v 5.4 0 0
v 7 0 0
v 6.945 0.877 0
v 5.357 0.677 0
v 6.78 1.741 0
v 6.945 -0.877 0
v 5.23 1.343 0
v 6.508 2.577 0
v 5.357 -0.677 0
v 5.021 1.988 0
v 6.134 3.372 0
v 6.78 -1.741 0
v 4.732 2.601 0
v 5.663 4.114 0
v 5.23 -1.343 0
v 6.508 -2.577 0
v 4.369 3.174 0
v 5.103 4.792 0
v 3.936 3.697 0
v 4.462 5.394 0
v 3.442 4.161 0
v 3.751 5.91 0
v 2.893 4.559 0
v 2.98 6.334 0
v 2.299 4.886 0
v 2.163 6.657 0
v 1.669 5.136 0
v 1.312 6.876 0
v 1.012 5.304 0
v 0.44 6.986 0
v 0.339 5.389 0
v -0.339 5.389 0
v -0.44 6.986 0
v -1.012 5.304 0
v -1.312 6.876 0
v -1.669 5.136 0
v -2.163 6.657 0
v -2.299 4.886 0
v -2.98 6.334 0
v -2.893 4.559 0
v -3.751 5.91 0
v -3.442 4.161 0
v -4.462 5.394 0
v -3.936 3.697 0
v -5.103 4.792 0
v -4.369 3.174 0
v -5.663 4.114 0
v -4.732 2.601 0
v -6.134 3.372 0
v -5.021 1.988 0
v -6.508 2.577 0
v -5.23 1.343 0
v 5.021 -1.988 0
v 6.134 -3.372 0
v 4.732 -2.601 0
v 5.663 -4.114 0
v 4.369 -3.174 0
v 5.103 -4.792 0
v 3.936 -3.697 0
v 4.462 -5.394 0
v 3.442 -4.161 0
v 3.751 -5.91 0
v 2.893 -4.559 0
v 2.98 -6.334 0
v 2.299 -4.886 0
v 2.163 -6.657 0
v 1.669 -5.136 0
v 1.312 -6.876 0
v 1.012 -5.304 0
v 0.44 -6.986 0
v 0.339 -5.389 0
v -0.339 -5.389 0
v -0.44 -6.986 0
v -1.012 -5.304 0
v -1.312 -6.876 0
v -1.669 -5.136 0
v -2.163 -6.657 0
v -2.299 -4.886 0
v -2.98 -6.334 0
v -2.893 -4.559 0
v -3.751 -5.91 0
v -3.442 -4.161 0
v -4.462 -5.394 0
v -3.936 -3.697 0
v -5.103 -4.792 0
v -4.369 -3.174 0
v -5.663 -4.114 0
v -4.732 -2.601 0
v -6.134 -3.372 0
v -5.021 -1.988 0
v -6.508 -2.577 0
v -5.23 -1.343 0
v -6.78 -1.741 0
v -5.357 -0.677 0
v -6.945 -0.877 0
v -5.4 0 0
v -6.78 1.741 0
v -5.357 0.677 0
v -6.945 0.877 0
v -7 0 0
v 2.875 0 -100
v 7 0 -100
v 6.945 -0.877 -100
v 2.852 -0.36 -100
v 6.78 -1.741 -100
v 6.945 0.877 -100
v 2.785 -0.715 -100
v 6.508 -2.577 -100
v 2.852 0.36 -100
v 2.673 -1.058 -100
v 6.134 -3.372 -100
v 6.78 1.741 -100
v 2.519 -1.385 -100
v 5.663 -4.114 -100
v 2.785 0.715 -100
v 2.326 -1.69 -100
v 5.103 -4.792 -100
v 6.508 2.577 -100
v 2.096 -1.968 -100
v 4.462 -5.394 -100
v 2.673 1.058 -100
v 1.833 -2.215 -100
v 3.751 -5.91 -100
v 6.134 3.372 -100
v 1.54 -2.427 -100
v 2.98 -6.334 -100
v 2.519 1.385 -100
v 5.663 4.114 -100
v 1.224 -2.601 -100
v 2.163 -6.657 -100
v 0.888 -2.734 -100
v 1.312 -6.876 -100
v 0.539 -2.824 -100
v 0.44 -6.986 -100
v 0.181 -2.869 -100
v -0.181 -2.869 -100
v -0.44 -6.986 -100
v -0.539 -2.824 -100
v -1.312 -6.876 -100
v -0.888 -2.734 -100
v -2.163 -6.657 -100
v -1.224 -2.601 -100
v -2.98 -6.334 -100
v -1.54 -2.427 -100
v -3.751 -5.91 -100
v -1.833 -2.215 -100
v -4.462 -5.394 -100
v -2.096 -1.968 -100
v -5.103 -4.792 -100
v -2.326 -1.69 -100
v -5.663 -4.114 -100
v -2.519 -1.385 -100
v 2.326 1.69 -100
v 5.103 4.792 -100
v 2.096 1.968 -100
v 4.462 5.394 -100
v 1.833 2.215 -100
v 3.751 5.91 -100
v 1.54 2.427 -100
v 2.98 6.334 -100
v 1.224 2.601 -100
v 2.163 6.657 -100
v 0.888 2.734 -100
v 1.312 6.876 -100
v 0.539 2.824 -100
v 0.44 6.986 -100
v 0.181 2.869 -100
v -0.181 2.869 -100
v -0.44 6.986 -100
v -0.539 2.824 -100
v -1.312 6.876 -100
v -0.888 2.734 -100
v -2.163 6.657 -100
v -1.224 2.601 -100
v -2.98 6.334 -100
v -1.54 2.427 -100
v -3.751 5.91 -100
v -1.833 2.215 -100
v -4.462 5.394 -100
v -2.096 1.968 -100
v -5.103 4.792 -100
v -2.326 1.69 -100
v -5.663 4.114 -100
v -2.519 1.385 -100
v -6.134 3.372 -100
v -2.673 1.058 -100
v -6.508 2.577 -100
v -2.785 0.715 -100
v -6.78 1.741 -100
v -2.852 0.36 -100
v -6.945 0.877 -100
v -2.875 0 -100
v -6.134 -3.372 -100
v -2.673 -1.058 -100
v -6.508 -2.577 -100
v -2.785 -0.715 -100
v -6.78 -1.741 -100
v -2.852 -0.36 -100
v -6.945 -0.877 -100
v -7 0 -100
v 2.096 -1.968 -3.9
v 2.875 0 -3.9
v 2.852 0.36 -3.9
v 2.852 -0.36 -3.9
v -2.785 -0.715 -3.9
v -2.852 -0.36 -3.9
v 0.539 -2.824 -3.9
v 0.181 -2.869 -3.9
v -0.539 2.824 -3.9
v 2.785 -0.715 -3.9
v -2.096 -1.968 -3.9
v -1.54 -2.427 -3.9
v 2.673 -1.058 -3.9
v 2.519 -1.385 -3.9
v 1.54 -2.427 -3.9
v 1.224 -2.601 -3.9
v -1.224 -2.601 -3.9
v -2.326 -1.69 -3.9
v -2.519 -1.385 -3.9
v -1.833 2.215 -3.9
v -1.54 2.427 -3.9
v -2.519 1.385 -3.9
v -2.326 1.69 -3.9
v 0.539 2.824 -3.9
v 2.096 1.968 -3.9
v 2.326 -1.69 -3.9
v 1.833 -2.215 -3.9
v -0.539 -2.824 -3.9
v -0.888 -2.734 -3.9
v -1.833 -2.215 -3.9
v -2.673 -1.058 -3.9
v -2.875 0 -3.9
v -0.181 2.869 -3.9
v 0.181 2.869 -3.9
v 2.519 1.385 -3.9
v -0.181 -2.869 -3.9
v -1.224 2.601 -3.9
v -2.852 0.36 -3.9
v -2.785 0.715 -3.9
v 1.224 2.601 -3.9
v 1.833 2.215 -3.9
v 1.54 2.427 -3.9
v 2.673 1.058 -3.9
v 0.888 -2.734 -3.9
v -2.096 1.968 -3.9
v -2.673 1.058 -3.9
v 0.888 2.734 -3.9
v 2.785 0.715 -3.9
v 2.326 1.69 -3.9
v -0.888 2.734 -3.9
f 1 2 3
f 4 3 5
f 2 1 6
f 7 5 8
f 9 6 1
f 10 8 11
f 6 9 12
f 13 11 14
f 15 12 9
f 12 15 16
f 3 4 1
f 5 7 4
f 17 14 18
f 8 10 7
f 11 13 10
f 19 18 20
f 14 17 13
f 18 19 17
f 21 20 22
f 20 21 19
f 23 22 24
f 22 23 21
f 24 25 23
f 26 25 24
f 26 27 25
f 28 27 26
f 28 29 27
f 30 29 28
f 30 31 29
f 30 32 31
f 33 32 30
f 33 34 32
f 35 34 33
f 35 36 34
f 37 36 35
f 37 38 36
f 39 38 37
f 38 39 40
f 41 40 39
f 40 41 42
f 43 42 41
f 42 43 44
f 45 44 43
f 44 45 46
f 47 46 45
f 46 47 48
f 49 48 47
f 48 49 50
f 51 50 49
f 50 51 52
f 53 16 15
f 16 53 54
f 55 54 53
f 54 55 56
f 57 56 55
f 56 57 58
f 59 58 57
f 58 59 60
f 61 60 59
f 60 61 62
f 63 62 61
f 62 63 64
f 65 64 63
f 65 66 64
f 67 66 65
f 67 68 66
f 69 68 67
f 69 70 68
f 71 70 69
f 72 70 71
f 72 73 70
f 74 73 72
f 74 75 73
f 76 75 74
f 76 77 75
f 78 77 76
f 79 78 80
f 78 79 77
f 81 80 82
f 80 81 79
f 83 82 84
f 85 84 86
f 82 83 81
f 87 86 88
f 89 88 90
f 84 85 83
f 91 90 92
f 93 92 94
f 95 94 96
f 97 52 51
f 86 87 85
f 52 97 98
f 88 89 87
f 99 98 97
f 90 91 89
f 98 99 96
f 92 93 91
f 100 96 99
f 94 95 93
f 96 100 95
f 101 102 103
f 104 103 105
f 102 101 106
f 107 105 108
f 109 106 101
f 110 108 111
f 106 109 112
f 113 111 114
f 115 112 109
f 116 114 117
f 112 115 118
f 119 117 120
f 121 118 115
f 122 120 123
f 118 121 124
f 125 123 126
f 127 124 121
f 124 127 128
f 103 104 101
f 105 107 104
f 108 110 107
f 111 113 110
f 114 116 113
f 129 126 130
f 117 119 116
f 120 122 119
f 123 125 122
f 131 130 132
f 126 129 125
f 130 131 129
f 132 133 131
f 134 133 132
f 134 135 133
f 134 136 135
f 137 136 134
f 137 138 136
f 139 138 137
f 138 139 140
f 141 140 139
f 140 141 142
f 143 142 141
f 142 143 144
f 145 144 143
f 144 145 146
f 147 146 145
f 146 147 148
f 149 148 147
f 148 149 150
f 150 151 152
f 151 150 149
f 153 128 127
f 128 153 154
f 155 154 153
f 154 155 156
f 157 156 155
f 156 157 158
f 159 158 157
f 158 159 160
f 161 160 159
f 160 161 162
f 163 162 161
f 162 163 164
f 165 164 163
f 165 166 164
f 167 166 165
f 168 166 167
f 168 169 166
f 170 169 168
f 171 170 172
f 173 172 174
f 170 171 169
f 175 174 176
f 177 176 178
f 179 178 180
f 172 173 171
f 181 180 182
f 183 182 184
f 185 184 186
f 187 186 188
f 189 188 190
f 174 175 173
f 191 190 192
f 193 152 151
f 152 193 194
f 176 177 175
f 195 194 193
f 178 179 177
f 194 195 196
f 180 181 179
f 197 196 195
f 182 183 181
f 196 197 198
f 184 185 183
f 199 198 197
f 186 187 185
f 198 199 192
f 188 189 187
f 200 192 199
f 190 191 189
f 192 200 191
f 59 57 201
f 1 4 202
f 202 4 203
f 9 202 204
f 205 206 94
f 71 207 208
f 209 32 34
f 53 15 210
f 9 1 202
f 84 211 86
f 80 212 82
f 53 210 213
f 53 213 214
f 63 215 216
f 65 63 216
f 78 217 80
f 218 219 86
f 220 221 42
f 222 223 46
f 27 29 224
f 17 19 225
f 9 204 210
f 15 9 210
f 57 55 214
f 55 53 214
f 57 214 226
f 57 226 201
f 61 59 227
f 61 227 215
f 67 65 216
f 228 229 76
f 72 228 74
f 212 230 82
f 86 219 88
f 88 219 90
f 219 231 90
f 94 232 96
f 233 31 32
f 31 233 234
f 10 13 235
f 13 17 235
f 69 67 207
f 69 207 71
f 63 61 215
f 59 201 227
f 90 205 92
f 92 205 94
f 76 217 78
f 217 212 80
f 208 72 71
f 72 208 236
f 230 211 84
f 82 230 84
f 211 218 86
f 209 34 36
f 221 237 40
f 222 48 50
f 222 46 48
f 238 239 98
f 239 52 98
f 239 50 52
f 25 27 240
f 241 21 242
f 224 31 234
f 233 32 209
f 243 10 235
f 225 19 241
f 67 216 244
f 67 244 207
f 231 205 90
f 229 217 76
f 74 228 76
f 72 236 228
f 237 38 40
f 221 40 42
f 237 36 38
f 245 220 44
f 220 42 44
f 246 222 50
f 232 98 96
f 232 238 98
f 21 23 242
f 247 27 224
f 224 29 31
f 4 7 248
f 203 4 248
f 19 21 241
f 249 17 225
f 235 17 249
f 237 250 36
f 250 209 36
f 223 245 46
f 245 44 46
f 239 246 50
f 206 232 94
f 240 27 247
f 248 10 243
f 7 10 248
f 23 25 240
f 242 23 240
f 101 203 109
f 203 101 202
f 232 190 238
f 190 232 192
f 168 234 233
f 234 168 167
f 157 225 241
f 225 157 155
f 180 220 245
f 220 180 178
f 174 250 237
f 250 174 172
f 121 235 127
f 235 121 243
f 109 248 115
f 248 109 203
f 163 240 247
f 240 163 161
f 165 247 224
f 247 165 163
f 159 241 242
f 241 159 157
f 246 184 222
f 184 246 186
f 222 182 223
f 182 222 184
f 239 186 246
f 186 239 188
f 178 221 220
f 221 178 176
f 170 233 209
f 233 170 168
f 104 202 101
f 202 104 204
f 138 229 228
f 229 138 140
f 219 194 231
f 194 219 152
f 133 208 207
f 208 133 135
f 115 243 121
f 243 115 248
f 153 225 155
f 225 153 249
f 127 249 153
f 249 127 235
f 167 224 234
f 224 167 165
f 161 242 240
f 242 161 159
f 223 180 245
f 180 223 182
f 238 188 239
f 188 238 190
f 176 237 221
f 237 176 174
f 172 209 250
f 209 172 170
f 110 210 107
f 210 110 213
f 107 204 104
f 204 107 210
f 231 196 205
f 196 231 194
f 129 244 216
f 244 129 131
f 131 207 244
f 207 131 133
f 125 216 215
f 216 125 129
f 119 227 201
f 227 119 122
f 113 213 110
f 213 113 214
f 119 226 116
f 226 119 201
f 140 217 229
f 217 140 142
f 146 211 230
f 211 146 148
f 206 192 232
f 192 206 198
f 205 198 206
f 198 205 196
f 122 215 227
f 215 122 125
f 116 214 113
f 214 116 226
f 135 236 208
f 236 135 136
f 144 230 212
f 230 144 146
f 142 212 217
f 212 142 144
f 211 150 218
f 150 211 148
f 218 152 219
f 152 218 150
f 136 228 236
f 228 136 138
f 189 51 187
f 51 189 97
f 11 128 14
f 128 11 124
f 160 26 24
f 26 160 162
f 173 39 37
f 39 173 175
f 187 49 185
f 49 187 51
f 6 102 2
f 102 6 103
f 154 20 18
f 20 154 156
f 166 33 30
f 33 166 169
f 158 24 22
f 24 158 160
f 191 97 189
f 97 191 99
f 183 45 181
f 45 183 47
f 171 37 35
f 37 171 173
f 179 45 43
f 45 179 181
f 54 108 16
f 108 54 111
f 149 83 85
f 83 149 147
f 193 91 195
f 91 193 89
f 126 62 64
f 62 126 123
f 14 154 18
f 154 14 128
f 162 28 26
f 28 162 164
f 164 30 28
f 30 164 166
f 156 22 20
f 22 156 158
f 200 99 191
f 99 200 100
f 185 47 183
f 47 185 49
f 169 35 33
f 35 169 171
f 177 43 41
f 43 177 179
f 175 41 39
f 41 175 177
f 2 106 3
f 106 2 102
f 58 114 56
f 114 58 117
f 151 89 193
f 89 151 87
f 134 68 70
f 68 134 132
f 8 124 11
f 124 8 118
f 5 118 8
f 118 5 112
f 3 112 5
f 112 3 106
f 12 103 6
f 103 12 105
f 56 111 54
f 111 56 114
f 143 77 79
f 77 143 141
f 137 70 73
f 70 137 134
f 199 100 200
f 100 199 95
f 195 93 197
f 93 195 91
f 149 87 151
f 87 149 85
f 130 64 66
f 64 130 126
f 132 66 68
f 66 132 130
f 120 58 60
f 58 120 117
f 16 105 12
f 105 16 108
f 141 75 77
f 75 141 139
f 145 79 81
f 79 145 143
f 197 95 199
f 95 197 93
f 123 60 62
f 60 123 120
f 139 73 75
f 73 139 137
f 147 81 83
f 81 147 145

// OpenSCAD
$fn = 50;


difference() {
	union() {
		translate(v = [0, 0, -100.0000000000]) {
			cylinder(h = 100, r = 7.0000000000);
		}
		cylinder(h = 0, r = 10.0000000000);
	}
	union() {
		translate(v = [0, 0, 0]) {
			rotate(a = [0, 0, 0]) {
				difference() {
					union() {
						#translate(v = [0, 0, -100.0000000000]) {
							cylinder(h = 100, r = 2.6000000000);
						}
						#translate(v = [0, 0, -3.9000000000]) {
							cylinder(h = 3.9000000000, r1 = 2.8750000000, r2 = 5.4000000000);
						}
						#translate(v = [0, 0, -100.0000000000]) {
							cylinder(h = 100, r = 2.8750000000);
						}
						#translate(v = [0, 0, -100.0000000000]) {
							cylinder(h = 100, r = 2.6000000000);
						}
					}
					union();
				}
			}
		}
	}
}
